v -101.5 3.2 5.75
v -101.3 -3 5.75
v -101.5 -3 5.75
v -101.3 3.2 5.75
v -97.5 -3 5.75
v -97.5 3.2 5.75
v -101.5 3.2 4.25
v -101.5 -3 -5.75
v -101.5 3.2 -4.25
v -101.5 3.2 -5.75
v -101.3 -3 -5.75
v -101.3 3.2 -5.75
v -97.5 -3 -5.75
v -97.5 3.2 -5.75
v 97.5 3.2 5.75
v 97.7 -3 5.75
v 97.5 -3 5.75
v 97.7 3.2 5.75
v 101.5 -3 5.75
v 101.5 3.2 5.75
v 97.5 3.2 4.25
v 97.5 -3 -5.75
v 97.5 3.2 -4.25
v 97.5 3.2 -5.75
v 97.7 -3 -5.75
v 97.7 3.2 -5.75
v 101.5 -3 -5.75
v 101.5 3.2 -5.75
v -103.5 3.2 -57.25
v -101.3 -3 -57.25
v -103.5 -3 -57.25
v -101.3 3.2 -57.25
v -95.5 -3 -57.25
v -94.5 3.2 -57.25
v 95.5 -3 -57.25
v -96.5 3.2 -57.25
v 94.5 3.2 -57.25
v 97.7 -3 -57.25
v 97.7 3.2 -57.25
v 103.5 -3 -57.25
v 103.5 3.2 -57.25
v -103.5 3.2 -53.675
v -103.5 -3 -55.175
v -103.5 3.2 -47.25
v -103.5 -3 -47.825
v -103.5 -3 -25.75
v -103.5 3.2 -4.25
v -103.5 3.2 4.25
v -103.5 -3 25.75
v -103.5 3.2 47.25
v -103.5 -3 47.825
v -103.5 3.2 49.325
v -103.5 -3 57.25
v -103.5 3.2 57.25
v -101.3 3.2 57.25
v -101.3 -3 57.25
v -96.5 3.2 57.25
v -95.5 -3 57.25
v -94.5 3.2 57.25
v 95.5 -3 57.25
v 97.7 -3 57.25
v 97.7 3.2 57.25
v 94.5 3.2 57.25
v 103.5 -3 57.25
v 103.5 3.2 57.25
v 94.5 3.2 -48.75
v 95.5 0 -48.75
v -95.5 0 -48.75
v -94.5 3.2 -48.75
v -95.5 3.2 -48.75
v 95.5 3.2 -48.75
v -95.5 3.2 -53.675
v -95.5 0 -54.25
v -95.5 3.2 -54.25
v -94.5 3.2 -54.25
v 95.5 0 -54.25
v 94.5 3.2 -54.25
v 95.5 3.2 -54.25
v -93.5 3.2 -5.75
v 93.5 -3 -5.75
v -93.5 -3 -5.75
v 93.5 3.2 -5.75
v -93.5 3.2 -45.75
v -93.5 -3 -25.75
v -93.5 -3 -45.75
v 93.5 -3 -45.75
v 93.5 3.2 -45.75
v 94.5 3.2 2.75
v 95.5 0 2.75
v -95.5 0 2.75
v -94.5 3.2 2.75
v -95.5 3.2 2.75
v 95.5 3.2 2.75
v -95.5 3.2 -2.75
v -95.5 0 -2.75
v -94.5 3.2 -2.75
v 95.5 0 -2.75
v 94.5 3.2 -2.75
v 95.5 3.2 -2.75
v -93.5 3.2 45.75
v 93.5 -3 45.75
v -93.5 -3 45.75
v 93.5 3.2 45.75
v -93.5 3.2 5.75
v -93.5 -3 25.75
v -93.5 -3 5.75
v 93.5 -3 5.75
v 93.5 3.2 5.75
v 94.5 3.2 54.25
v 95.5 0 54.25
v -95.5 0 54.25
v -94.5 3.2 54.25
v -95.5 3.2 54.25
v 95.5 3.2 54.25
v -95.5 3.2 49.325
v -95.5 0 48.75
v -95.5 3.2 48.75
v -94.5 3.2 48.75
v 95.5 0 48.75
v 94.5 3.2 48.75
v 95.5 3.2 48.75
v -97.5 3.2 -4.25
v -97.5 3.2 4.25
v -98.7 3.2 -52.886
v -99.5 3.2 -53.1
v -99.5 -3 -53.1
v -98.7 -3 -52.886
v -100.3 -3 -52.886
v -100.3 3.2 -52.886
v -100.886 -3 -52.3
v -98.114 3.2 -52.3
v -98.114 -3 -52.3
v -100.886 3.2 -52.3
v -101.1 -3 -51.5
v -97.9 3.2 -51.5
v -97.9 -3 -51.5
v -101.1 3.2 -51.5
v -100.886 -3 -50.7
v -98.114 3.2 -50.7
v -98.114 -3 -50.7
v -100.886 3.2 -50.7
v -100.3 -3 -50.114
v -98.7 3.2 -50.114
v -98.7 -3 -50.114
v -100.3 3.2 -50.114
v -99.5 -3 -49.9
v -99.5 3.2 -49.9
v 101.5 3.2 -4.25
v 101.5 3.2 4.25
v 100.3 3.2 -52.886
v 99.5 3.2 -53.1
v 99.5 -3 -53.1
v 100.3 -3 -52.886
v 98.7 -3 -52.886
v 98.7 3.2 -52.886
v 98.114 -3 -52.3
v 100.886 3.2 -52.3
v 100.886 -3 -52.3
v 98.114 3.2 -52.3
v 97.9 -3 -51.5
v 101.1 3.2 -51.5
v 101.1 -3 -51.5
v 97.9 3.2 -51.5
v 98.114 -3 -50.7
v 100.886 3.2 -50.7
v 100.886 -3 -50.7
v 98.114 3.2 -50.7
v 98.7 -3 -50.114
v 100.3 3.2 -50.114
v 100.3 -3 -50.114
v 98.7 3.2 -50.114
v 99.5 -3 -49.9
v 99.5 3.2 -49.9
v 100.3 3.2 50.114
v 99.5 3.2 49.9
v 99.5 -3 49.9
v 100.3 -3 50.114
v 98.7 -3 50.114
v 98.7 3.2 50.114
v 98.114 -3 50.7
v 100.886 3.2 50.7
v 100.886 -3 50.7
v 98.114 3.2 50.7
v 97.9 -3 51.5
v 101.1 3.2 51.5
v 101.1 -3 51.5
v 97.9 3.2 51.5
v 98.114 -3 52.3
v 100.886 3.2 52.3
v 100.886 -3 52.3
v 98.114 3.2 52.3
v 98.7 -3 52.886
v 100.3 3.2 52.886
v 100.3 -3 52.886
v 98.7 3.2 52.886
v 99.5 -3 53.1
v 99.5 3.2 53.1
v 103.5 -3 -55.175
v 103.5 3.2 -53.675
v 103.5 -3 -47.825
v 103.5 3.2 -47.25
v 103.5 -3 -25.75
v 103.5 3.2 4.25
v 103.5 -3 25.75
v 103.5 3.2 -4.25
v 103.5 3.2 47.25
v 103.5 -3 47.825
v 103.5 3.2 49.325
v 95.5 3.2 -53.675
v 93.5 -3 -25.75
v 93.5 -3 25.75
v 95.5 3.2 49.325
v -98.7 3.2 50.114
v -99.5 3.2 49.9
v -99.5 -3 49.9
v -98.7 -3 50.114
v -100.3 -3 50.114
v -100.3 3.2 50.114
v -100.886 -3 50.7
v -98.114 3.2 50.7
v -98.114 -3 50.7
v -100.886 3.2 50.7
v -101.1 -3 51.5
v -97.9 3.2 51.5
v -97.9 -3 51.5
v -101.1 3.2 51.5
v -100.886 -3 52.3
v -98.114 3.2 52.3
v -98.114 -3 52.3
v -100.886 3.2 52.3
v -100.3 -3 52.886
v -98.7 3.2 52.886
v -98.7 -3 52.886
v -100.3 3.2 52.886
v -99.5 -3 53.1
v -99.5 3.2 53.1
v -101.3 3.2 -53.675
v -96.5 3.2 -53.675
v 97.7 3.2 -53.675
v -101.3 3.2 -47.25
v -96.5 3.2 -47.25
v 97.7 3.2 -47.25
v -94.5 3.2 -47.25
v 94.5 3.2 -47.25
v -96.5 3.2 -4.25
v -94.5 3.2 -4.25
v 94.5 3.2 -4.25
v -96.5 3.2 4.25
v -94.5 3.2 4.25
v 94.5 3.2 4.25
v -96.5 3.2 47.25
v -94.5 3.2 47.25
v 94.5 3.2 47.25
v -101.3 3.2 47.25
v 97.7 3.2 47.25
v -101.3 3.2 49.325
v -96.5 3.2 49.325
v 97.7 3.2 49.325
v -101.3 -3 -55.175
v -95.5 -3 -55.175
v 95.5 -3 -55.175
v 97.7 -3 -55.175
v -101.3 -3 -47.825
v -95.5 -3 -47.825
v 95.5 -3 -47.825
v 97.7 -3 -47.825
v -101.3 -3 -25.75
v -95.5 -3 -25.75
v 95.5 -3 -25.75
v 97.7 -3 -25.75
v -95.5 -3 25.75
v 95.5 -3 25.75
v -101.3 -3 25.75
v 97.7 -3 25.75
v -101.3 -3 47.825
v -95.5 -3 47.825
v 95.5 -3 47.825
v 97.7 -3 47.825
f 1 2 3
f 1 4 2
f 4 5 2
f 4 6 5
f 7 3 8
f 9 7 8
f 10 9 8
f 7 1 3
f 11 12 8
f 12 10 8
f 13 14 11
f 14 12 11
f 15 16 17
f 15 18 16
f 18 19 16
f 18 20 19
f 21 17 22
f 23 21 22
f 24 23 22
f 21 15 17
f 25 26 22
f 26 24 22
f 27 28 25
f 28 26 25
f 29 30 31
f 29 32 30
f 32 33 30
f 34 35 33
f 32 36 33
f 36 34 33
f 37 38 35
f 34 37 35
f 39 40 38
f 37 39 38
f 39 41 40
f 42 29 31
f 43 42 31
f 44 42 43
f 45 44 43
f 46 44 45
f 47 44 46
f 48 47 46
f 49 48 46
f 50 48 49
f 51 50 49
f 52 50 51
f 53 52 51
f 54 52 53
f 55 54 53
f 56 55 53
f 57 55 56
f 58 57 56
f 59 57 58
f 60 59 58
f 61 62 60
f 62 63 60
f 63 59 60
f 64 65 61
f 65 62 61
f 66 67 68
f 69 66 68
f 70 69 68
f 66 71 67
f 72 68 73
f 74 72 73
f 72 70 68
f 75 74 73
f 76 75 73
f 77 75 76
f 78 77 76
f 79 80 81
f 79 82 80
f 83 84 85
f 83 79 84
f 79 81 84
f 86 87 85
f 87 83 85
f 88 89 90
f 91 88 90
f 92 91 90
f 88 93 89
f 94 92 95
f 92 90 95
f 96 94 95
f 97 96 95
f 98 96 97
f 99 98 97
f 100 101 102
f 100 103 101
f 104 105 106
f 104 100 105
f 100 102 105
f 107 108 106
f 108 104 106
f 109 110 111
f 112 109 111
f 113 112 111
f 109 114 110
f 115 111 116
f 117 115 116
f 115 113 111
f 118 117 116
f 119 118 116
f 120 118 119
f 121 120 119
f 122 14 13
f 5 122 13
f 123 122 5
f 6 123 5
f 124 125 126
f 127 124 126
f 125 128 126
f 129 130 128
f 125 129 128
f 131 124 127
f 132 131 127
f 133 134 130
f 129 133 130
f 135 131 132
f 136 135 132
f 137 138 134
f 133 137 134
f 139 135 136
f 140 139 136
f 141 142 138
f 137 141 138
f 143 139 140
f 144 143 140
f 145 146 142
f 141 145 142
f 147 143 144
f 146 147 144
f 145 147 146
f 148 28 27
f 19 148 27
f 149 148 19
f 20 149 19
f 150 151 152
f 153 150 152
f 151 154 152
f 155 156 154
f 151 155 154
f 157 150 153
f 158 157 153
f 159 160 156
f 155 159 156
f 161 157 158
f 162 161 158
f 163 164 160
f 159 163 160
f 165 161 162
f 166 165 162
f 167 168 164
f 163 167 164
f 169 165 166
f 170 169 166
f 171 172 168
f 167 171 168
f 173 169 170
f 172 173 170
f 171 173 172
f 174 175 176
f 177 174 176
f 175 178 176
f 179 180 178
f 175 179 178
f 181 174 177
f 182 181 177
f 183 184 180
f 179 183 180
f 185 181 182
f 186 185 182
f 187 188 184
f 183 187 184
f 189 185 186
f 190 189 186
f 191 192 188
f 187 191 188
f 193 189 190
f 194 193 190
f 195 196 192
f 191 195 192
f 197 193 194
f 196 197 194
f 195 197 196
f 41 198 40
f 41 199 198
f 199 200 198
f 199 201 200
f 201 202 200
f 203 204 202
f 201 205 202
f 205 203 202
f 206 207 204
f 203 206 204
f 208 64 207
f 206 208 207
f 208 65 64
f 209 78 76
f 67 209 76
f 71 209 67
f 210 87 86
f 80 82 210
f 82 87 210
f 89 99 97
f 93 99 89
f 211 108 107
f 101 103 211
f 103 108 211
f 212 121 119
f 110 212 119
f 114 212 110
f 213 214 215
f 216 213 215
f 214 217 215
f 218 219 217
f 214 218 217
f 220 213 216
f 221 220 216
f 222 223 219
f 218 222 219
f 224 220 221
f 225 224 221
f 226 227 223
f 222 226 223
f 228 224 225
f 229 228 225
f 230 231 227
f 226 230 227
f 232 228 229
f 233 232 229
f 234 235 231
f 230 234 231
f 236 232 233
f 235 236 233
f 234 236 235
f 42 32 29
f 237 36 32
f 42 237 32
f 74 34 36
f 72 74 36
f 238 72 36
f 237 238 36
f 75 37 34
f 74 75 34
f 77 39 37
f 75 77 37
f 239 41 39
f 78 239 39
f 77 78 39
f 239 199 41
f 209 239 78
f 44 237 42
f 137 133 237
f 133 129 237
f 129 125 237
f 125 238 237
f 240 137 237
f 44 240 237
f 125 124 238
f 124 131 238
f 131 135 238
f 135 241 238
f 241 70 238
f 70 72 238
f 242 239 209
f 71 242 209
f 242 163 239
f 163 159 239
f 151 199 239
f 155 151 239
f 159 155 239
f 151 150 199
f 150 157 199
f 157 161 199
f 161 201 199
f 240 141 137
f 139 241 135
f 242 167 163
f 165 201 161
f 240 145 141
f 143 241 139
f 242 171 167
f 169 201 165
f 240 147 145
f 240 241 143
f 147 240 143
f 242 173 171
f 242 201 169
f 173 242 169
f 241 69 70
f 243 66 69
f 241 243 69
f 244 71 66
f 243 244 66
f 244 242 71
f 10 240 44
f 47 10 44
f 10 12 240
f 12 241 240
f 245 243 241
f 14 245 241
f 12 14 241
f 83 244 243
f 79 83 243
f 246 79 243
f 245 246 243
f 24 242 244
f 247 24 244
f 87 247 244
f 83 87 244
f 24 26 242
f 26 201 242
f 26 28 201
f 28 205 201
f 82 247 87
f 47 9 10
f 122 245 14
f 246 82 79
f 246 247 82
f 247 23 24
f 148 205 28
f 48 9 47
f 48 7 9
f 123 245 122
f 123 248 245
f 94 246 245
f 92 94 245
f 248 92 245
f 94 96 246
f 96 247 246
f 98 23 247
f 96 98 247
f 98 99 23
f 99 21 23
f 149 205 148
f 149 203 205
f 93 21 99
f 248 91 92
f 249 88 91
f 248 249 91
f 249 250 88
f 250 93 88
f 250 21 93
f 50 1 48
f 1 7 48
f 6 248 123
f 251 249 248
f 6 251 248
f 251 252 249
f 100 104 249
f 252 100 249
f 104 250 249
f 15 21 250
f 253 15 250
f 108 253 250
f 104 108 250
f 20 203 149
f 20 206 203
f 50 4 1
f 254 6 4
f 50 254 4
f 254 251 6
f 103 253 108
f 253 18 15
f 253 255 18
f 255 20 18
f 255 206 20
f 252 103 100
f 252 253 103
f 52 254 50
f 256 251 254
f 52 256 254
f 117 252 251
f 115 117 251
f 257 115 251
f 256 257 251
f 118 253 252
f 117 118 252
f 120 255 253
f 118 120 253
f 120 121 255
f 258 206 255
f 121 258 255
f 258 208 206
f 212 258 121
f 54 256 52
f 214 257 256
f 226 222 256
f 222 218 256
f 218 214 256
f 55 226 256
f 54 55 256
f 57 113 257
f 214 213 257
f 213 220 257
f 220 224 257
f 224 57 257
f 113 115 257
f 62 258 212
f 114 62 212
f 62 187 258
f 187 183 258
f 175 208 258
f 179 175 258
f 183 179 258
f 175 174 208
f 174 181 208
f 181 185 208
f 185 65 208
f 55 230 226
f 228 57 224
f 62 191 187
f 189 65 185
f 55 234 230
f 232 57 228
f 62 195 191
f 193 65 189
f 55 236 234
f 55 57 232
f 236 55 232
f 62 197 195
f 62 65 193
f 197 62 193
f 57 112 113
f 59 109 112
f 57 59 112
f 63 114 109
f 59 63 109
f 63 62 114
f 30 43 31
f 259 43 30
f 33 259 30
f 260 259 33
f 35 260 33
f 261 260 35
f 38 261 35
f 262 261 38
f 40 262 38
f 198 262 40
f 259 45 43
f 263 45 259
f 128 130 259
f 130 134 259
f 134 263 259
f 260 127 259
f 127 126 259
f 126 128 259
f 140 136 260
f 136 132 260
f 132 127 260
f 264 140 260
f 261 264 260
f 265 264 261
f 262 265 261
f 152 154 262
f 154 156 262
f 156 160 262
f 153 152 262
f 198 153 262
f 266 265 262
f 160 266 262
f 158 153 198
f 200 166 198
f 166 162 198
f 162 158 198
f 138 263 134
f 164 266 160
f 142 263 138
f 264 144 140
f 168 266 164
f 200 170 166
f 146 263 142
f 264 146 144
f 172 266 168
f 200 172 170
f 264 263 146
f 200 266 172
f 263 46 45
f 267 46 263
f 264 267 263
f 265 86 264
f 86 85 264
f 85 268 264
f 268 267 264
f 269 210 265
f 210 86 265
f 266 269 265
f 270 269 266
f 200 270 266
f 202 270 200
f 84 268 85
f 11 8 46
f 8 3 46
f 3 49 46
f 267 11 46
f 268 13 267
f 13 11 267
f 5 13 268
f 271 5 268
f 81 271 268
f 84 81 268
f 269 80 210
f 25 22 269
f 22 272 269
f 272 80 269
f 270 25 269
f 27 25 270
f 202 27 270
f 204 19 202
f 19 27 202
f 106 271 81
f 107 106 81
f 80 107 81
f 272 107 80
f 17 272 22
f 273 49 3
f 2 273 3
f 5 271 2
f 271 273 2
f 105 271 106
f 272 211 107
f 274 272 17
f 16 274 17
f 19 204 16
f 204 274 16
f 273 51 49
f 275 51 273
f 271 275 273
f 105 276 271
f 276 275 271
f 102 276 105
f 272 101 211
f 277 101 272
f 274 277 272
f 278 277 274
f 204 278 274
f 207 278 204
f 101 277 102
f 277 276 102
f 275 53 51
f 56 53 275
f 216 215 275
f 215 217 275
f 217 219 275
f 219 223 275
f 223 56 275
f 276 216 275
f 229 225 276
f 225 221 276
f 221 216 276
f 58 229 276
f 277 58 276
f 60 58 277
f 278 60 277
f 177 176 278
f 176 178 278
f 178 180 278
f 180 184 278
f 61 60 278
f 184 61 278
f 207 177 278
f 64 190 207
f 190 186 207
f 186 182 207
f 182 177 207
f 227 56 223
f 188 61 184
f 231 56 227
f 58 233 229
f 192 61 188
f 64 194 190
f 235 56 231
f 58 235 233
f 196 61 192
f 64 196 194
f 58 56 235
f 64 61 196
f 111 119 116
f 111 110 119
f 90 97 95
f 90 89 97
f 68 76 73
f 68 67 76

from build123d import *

# Parameters (mm, degrees)
SKETCH1_W           = 207
SKETCH1_H           = 114.5
SKETCH1_W_2         = 187
SKETCH1_H_2         = 40
SKETCH1_W_3         = 191
SKETCH1_H_3         = 5.5
SKETCH1_R           = 1.6
SKETCH1_W_4         = 4
SKETCH1_H_4         = 11.5
BOSS_EXTRUDE1_DEPTH = 3.2
BOSS_EXTRUDE2_START = -3
SKETCH1_3_W         = 207
SKETCH1_3_H         = 114.5
SKETCH1_3_W_2       = 187
SKETCH1_3_H_2       = 40
SKETCH1_3_R         = 1.6
SKETCH1_3_W_3       = 4
SKETCH1_3_H_3       = 11.5
BOSS_EXTRUDE2_DEPTH = 3


with BuildPart() as part:
    # Sketch1 → Boss-Extrude1 (new body)
    with BuildSketch(Plane(origin=(0, 0, 0), x_dir=(1, 0, 0), z_dir=(0, 1, 0))):
        Rectangle(SKETCH1_W, SKETCH1_H)
        with Locations((0, 25.75)):
            Rectangle(SKETCH1_W_2, SKETCH1_H_2, mode=Mode.SUBTRACT)
        Polygon((-95.5, 2.75), (93.5, 2.75), (95.5, 2.75), (95.5, -2.75), (-95.5, -2.75), align=None, mode=Mode.SUBTRACT)
        with Locations((0, -25.75)):
            Rectangle(SKETCH1_W_2, SKETCH1_H_2, mode=Mode.SUBTRACT)
        with Locations((0, -51.5)):
            Rectangle(SKETCH1_W_3, SKETCH1_H_3, mode=Mode.SUBTRACT)
        with Locations((0, 51.5)):
            Rectangle(SKETCH1_W_3, SKETCH1_H_3, mode=Mode.SUBTRACT)
        with Locations((-99.5, -51.5)):
            Circle(SKETCH1_R, mode=Mode.SUBTRACT)
        with Locations((-99.5, 0)):
            Rectangle(SKETCH1_W_4, SKETCH1_H_4, mode=Mode.SUBTRACT)
        with Locations((-99.5, 51.5)):
            Circle(SKETCH1_R, mode=Mode.SUBTRACT)
        with Locations((99.5, -51.5)):
            Circle(SKETCH1_R, mode=Mode.SUBTRACT)
        with Locations((99.5, 0)):
            Rectangle(SKETCH1_W_4, SKETCH1_H_4, mode=Mode.SUBTRACT)
        with Locations((99.5, 51.5)):
            Circle(SKETCH1_R, mode=Mode.SUBTRACT)
    extrude(amount=BOSS_EXTRUDE1_DEPTH)

    # Sketch1<3> → Boss-Extrude2 (add)
    with BuildSketch(Plane(origin=(0, 0, 0), x_dir=(1, 0, 0), z_dir=(0, 1, 0)).offset(BOSS_EXTRUDE2_START)):
        Rectangle(SKETCH1_3_W, SKETCH1_3_H)
        with Locations((0, 25.75)):
            Rectangle(SKETCH1_3_W_2, SKETCH1_3_H_2, mode=Mode.SUBTRACT)
        with Locations((0, -25.75)):
            Rectangle(SKETCH1_3_W_2, SKETCH1_3_H_2, mode=Mode.SUBTRACT)
        with Locations((-99.5, -51.5)):
            Circle(SKETCH1_3_R, mode=Mode.SUBTRACT)
        with Locations((-99.5, 0)):
            Rectangle(SKETCH1_3_W_3, SKETCH1_3_H_3, mode=Mode.SUBTRACT)
        with Locations((-99.5, 51.5)):
            Circle(SKETCH1_3_R, mode=Mode.SUBTRACT)
        with Locations((99.5, 0)):
            Rectangle(SKETCH1_3_W_3, SKETCH1_3_H_3, mode=Mode.SUBTRACT)
        with Locations((99.5, -51.5)):
            Circle(SKETCH1_3_R, mode=Mode.SUBTRACT)
        with Locations((99.5, 51.5)):
            Circle(SKETCH1_3_R, mode=Mode.SUBTRACT)
    extrude(amount=BOSS_EXTRUDE2_DEPTH)


solid = part.part
